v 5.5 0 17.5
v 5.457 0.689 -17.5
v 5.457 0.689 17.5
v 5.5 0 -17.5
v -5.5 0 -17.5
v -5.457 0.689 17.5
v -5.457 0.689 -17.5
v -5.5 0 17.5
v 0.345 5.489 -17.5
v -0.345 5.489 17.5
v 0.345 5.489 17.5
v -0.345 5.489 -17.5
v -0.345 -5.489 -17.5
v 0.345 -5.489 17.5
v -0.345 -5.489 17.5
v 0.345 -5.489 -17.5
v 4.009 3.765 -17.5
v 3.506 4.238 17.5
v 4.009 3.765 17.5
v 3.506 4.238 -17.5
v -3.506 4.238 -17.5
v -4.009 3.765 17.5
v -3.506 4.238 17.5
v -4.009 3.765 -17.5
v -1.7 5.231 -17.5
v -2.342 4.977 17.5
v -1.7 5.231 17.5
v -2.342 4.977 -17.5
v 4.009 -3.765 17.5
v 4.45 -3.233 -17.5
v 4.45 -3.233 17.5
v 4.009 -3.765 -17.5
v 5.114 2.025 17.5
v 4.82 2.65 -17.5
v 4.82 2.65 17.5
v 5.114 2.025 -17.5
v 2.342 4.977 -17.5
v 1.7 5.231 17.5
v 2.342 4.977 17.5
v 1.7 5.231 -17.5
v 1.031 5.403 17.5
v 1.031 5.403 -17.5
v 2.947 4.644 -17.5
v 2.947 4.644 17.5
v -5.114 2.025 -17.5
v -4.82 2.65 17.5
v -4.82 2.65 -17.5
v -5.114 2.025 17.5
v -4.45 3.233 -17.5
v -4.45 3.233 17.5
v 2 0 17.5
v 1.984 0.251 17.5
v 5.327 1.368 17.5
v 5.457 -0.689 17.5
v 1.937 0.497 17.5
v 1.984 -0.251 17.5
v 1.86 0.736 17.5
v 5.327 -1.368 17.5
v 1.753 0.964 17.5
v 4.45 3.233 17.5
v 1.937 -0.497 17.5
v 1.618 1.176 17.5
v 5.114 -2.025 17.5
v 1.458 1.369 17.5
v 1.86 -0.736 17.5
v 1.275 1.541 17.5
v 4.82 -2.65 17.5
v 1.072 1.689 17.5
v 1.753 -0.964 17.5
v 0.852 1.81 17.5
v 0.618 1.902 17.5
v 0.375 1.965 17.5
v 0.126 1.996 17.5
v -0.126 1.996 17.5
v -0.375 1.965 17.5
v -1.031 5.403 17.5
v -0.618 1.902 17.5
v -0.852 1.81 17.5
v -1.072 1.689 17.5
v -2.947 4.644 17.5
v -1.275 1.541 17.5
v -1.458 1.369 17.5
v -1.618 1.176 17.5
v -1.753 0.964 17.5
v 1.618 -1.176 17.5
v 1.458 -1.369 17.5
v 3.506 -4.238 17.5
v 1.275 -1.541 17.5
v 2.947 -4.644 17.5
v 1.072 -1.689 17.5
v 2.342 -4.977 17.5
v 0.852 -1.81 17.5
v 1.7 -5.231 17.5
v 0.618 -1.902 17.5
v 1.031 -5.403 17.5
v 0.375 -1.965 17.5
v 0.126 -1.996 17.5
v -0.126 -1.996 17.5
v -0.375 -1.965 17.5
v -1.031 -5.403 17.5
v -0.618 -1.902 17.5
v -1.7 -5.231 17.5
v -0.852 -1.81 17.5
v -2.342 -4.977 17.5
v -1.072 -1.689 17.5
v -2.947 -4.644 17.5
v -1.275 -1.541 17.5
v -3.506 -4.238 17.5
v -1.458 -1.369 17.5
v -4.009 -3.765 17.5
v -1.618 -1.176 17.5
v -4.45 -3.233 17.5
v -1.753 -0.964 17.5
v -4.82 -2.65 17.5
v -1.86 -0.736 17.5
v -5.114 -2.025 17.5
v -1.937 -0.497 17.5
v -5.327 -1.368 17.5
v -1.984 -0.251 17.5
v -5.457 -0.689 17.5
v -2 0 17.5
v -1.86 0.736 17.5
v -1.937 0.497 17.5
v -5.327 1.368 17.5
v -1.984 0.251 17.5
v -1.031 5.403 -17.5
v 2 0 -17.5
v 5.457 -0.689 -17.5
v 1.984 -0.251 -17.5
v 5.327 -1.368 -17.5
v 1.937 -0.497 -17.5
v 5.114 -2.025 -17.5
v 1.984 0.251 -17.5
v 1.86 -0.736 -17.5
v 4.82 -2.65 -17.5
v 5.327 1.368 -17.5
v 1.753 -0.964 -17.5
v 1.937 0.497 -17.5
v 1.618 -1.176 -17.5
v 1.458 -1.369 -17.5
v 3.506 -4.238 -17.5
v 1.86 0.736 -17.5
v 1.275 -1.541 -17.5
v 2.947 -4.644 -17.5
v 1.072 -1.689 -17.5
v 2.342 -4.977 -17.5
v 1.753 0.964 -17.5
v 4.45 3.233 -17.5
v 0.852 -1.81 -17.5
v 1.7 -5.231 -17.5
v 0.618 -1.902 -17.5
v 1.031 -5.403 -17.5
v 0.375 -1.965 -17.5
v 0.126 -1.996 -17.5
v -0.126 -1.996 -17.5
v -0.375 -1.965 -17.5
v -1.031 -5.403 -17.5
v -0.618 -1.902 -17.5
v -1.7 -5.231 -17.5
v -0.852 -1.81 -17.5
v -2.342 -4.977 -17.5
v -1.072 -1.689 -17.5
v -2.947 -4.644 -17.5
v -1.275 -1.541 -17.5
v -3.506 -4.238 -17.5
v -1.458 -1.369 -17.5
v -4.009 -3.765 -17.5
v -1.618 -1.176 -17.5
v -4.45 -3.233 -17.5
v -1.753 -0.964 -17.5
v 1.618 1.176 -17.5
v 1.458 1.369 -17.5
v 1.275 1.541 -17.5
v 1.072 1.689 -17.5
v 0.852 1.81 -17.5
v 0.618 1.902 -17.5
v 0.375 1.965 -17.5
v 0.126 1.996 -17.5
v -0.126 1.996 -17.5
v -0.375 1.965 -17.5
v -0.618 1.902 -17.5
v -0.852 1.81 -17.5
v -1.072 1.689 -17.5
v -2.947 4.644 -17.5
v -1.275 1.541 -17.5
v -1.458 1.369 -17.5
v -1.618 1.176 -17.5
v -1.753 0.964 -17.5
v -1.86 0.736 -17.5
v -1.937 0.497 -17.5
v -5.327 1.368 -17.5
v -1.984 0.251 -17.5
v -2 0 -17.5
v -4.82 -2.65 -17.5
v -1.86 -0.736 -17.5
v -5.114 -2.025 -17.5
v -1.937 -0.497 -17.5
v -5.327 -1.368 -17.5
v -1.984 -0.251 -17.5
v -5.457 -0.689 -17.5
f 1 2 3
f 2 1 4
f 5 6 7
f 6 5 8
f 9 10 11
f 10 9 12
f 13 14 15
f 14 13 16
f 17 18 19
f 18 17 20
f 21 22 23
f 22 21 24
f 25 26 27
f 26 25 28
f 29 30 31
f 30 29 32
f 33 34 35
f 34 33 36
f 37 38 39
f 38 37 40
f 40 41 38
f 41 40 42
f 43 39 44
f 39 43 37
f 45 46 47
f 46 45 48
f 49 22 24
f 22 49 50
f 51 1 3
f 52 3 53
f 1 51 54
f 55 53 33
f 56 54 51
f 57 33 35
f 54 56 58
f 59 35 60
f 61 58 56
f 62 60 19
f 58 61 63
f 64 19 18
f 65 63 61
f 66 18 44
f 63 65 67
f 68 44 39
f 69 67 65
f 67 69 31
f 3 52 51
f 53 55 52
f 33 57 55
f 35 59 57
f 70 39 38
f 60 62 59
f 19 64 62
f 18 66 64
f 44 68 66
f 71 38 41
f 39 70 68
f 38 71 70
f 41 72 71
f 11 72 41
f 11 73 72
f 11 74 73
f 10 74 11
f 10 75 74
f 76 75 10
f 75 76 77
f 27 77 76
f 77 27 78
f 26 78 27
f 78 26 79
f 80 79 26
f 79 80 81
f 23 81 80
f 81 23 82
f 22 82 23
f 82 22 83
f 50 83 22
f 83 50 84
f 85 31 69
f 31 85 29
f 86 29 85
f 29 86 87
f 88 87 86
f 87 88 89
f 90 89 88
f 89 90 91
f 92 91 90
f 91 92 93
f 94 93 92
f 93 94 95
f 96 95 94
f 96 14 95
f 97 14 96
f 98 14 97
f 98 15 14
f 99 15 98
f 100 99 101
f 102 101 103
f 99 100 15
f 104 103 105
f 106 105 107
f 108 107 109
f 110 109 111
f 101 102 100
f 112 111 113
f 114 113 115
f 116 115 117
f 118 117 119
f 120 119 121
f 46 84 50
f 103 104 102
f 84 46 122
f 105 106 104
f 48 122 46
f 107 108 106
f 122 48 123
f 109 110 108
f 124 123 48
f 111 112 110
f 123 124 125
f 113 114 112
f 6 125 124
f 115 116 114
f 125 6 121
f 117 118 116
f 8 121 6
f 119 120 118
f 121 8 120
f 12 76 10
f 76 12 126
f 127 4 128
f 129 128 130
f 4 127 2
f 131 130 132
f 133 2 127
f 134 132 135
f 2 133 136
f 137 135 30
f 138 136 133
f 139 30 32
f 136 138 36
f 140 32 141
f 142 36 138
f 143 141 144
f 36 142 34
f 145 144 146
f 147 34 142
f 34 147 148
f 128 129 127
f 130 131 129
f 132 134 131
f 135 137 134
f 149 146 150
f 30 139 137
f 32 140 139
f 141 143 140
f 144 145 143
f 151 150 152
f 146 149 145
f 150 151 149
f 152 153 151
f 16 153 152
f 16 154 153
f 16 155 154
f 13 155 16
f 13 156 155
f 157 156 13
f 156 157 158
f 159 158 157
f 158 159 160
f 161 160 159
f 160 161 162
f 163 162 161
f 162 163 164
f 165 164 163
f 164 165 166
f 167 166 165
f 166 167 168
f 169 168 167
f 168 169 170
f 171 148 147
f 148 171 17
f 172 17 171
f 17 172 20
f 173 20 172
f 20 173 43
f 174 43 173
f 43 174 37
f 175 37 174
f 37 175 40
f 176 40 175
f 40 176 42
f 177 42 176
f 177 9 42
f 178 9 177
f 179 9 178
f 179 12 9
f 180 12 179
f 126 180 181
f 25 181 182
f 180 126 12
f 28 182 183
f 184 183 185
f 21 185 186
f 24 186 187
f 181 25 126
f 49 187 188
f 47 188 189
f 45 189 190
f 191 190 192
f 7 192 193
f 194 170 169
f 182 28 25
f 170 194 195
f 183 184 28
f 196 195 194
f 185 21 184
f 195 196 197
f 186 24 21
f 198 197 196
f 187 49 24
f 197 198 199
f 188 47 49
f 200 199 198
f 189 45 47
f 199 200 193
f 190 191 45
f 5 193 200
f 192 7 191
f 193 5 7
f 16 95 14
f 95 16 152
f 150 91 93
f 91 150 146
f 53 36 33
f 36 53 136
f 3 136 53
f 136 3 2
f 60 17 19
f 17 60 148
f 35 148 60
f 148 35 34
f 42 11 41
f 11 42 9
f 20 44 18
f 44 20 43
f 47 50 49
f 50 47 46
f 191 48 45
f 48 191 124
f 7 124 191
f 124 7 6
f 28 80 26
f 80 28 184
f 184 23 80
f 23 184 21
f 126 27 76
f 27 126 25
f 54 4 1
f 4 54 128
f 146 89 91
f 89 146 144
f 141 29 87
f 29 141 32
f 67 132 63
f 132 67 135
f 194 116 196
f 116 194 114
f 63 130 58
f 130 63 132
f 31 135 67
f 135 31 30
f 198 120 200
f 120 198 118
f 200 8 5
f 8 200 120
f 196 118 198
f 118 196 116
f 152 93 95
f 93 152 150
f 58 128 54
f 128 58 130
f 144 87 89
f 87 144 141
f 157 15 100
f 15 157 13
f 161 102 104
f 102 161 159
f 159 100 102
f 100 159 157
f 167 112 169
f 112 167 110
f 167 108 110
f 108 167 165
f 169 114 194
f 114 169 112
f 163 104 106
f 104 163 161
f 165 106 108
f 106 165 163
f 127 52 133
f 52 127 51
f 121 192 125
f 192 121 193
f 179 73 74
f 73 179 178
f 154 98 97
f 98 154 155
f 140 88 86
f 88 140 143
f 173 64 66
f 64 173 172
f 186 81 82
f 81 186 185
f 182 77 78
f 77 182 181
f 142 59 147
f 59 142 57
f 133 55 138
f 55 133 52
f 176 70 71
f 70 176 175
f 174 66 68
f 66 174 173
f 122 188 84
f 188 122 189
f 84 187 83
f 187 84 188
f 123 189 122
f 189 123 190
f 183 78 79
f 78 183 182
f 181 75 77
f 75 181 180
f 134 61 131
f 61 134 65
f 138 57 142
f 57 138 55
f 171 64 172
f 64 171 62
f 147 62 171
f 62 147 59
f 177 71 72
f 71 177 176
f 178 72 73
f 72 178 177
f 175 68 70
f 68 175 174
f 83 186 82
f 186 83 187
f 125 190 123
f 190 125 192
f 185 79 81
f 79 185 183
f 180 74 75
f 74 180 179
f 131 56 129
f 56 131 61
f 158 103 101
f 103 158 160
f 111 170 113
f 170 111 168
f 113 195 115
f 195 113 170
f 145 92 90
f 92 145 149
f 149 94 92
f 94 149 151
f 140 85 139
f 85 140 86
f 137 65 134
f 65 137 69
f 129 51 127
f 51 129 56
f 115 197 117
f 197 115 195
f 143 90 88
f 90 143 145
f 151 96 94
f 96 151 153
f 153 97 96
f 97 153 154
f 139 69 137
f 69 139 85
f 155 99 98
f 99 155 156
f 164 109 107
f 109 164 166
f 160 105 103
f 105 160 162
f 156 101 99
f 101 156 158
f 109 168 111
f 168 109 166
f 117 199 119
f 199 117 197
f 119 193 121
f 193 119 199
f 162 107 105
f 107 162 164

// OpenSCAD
$fn = 50;


difference() {
	union() {
		translate(v = [0, 0, -17.5000000000]) {
			cylinder(h = 35, r = 5.5000000000);
		}
	}
	union() {
		translate(v = [0, 0, -100.0000000000]) {
			cylinder(h = 200, r = 2);
		}
	}
}
